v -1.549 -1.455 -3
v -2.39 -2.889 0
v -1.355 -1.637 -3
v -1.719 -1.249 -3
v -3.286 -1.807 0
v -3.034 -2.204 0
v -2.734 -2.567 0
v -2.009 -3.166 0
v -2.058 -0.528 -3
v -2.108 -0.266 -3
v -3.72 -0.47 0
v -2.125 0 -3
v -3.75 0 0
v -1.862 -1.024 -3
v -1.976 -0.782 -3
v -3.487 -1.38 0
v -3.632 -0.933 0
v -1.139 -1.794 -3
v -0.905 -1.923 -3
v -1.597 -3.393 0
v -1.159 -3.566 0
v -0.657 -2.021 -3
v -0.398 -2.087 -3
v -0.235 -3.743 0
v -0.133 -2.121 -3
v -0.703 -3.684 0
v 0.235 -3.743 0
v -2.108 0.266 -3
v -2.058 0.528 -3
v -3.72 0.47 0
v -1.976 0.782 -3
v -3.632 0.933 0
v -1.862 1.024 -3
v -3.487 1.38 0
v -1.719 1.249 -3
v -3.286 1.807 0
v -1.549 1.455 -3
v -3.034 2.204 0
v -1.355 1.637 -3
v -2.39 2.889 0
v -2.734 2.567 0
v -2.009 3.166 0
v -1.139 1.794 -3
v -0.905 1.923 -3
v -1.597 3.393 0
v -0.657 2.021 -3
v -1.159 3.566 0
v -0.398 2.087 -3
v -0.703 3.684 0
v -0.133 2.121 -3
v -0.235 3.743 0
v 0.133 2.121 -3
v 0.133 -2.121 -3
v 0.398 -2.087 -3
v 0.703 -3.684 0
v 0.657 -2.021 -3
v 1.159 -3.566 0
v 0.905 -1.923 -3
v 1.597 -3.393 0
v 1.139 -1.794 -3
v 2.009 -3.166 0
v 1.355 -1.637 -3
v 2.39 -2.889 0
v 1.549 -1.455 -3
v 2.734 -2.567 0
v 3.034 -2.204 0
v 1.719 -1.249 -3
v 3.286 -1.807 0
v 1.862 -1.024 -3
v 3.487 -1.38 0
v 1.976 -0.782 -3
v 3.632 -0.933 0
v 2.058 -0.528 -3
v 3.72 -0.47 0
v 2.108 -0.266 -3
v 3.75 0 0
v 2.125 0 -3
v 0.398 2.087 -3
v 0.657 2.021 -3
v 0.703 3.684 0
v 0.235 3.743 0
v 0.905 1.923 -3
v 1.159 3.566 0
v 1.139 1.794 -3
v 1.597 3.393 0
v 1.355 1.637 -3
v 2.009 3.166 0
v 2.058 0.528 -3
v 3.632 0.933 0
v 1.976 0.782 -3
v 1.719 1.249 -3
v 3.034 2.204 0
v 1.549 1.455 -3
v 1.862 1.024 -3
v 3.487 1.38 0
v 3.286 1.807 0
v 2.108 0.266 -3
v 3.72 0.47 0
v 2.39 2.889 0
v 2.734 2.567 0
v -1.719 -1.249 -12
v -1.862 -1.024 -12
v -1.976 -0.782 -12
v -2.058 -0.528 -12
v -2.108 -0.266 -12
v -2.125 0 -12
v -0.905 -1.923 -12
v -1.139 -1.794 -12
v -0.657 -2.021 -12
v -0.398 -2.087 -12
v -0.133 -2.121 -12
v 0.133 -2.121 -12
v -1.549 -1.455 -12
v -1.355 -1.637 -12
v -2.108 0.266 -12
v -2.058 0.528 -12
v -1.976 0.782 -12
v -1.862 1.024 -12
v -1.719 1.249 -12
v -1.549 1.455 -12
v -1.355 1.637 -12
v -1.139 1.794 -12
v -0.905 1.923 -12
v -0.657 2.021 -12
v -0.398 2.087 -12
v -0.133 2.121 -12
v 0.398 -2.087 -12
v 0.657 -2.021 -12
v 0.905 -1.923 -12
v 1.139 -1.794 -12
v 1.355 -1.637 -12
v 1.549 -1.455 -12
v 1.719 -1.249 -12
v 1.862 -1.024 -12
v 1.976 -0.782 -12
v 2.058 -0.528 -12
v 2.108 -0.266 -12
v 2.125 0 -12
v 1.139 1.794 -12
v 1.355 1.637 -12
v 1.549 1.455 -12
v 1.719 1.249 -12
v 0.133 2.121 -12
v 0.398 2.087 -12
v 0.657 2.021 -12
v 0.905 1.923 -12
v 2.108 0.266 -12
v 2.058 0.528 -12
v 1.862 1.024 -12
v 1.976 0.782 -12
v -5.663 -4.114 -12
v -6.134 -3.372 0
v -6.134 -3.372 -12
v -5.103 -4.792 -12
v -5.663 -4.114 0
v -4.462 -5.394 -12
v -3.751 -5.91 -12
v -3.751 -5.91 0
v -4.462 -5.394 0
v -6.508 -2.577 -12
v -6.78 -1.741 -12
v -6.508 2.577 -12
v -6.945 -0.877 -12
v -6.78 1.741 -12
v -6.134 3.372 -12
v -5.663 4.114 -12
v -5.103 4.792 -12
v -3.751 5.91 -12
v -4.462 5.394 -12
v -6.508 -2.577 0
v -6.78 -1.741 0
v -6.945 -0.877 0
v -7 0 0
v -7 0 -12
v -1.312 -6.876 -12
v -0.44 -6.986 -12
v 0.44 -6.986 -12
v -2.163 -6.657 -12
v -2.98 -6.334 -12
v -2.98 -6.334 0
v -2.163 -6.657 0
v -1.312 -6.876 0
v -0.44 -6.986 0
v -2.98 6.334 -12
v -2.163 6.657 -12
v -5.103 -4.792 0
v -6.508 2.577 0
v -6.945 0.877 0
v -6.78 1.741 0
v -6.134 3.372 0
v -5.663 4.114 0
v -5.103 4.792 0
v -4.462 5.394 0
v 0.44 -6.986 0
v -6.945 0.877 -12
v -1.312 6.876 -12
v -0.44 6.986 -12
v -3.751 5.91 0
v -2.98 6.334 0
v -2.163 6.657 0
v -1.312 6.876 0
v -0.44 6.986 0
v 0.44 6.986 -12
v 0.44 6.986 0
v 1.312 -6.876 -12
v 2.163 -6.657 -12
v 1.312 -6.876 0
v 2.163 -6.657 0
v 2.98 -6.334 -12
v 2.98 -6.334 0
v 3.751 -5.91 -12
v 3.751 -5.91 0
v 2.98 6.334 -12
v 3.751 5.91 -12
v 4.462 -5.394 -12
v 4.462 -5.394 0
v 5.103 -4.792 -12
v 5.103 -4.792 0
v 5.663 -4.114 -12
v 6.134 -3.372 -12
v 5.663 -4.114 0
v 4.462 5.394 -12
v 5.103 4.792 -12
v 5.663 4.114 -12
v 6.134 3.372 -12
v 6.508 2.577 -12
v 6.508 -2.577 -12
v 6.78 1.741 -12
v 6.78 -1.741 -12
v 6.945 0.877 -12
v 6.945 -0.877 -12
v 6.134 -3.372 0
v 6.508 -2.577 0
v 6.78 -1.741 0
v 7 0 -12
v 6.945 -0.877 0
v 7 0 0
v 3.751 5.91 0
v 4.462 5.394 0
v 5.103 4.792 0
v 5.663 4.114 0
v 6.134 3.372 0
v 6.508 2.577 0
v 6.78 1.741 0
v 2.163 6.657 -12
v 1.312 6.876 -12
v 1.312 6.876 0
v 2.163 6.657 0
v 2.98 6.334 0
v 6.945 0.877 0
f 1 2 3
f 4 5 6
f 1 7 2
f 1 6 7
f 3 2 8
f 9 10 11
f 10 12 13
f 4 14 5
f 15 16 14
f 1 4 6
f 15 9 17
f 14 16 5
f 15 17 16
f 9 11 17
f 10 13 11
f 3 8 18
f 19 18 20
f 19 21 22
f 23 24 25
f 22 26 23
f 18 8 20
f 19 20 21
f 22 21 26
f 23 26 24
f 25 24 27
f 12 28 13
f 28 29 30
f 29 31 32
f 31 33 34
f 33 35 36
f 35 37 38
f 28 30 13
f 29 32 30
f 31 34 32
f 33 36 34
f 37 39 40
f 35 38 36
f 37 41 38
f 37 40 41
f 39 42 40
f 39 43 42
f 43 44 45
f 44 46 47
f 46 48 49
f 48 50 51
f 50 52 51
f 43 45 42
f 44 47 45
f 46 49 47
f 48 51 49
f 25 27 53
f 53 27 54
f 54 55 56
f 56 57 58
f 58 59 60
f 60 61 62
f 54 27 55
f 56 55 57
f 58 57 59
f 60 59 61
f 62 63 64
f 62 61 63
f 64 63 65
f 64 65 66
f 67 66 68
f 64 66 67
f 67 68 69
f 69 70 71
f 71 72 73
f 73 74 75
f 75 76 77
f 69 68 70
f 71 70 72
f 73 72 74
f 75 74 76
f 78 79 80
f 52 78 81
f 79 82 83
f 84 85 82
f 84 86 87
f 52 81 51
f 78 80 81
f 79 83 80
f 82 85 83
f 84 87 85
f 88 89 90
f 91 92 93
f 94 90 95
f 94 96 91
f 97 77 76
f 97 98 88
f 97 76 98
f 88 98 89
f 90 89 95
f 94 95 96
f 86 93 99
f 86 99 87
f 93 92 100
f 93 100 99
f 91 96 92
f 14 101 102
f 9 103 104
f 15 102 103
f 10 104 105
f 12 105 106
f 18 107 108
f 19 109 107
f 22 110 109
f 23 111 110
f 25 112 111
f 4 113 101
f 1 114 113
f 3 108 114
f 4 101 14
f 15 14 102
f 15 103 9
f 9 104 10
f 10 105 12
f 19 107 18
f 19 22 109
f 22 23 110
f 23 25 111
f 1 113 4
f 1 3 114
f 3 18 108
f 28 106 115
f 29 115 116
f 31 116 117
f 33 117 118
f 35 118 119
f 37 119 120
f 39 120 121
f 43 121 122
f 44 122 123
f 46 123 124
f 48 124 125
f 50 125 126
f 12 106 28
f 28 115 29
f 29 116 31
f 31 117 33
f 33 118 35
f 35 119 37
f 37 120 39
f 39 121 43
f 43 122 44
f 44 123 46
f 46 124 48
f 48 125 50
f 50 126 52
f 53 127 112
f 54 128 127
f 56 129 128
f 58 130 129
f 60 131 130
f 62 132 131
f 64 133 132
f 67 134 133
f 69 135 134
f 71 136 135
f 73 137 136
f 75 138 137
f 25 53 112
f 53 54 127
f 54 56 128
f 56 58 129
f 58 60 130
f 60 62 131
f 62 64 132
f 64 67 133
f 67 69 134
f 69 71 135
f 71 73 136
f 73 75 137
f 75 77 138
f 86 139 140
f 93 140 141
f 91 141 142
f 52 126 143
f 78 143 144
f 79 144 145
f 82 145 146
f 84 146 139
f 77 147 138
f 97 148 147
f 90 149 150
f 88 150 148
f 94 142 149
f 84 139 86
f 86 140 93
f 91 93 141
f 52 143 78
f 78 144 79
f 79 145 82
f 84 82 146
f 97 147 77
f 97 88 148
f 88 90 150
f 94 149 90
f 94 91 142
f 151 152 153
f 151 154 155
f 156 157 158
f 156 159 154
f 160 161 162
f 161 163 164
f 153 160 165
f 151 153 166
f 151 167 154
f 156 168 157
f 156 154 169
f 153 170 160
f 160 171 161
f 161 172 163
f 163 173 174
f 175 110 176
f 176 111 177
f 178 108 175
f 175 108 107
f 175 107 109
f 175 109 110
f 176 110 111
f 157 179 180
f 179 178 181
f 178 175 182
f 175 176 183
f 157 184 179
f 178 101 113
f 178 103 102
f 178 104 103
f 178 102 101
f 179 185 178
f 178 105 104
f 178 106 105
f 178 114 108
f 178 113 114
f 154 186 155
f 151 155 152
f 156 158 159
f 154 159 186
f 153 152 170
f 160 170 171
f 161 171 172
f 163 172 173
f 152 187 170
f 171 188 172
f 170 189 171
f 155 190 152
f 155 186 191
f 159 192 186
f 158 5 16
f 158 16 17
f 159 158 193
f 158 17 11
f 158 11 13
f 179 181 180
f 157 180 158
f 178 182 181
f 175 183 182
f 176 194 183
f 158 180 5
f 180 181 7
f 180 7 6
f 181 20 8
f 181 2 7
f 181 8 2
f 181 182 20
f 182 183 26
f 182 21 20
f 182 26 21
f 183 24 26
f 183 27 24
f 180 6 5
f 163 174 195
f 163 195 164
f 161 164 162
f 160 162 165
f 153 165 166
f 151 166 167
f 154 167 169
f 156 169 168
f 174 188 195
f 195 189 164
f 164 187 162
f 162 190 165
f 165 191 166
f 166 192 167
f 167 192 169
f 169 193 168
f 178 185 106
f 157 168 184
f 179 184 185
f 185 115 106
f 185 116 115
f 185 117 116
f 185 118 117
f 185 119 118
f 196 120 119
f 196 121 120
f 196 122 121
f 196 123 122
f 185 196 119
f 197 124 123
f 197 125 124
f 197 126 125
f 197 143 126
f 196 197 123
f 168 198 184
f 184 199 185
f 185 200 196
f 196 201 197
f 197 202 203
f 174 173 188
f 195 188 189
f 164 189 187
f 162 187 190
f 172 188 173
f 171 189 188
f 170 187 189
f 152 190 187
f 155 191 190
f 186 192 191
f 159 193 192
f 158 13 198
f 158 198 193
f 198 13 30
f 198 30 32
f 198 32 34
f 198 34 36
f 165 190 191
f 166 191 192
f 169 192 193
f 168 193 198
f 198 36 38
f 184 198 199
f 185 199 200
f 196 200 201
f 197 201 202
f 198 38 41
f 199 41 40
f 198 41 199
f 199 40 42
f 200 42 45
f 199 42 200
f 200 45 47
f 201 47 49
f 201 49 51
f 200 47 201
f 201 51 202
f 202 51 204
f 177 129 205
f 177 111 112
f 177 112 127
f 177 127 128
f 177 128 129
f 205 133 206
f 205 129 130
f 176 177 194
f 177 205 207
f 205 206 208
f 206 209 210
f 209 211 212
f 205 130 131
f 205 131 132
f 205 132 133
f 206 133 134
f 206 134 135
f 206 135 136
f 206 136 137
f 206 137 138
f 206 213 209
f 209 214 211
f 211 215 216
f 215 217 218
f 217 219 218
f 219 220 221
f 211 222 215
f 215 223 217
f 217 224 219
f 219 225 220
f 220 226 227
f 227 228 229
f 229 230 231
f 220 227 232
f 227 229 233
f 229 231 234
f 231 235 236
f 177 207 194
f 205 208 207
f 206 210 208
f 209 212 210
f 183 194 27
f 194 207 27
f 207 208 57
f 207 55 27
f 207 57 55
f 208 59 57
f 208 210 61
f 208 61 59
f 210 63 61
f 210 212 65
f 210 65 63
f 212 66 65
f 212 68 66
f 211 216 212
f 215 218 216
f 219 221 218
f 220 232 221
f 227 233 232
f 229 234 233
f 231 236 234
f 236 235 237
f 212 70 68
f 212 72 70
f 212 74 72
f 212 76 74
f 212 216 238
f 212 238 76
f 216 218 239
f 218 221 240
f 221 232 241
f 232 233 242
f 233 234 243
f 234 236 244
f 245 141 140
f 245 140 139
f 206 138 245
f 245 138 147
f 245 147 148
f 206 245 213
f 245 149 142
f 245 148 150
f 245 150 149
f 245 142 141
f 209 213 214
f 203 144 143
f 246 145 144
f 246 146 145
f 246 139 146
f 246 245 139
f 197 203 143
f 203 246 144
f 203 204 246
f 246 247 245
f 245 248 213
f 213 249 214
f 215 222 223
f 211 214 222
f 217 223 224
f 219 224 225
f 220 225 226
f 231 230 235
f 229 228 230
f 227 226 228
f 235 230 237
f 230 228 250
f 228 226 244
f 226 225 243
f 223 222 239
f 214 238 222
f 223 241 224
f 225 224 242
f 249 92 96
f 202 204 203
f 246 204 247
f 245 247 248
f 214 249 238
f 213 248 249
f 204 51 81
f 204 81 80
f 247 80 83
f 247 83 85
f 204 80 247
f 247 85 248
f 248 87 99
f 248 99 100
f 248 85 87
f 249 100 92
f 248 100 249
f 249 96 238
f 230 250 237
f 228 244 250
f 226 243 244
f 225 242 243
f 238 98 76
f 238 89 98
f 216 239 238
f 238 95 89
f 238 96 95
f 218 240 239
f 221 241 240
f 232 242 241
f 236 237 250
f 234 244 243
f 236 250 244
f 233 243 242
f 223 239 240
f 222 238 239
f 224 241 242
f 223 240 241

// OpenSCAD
$fn = 50;


difference() {
	union() {
		translate(v = [0, 0, -12.0000000000]) {
			cylinder(h = 12, r = 7.0000000000);
		}
	}
	union() {
		translate(v = [0, 0, 0]) {
			rotate(a = [0, 0, 0]) {
				difference() {
					union() {
						translate(v = [0, 0, -15.0000000000]) {
							cylinder(h = 15, r = 2.0000000000);
						}
						translate(v = [0, 0, -3]) {
							cylinder(h = 3, r1 = 2.1250000000, r2 = 3.7500000000);
						}
						translate(v = [0, 0, -15.0000000000]) {
							cylinder(h = 15, r = 2.1250000000);
						}
						translate(v = [0, 0, -15.0000000000]) {
							cylinder(h = 15, r = 2.0000000000);
						}
					}
					union();
				}
			}
		}
	}
}
